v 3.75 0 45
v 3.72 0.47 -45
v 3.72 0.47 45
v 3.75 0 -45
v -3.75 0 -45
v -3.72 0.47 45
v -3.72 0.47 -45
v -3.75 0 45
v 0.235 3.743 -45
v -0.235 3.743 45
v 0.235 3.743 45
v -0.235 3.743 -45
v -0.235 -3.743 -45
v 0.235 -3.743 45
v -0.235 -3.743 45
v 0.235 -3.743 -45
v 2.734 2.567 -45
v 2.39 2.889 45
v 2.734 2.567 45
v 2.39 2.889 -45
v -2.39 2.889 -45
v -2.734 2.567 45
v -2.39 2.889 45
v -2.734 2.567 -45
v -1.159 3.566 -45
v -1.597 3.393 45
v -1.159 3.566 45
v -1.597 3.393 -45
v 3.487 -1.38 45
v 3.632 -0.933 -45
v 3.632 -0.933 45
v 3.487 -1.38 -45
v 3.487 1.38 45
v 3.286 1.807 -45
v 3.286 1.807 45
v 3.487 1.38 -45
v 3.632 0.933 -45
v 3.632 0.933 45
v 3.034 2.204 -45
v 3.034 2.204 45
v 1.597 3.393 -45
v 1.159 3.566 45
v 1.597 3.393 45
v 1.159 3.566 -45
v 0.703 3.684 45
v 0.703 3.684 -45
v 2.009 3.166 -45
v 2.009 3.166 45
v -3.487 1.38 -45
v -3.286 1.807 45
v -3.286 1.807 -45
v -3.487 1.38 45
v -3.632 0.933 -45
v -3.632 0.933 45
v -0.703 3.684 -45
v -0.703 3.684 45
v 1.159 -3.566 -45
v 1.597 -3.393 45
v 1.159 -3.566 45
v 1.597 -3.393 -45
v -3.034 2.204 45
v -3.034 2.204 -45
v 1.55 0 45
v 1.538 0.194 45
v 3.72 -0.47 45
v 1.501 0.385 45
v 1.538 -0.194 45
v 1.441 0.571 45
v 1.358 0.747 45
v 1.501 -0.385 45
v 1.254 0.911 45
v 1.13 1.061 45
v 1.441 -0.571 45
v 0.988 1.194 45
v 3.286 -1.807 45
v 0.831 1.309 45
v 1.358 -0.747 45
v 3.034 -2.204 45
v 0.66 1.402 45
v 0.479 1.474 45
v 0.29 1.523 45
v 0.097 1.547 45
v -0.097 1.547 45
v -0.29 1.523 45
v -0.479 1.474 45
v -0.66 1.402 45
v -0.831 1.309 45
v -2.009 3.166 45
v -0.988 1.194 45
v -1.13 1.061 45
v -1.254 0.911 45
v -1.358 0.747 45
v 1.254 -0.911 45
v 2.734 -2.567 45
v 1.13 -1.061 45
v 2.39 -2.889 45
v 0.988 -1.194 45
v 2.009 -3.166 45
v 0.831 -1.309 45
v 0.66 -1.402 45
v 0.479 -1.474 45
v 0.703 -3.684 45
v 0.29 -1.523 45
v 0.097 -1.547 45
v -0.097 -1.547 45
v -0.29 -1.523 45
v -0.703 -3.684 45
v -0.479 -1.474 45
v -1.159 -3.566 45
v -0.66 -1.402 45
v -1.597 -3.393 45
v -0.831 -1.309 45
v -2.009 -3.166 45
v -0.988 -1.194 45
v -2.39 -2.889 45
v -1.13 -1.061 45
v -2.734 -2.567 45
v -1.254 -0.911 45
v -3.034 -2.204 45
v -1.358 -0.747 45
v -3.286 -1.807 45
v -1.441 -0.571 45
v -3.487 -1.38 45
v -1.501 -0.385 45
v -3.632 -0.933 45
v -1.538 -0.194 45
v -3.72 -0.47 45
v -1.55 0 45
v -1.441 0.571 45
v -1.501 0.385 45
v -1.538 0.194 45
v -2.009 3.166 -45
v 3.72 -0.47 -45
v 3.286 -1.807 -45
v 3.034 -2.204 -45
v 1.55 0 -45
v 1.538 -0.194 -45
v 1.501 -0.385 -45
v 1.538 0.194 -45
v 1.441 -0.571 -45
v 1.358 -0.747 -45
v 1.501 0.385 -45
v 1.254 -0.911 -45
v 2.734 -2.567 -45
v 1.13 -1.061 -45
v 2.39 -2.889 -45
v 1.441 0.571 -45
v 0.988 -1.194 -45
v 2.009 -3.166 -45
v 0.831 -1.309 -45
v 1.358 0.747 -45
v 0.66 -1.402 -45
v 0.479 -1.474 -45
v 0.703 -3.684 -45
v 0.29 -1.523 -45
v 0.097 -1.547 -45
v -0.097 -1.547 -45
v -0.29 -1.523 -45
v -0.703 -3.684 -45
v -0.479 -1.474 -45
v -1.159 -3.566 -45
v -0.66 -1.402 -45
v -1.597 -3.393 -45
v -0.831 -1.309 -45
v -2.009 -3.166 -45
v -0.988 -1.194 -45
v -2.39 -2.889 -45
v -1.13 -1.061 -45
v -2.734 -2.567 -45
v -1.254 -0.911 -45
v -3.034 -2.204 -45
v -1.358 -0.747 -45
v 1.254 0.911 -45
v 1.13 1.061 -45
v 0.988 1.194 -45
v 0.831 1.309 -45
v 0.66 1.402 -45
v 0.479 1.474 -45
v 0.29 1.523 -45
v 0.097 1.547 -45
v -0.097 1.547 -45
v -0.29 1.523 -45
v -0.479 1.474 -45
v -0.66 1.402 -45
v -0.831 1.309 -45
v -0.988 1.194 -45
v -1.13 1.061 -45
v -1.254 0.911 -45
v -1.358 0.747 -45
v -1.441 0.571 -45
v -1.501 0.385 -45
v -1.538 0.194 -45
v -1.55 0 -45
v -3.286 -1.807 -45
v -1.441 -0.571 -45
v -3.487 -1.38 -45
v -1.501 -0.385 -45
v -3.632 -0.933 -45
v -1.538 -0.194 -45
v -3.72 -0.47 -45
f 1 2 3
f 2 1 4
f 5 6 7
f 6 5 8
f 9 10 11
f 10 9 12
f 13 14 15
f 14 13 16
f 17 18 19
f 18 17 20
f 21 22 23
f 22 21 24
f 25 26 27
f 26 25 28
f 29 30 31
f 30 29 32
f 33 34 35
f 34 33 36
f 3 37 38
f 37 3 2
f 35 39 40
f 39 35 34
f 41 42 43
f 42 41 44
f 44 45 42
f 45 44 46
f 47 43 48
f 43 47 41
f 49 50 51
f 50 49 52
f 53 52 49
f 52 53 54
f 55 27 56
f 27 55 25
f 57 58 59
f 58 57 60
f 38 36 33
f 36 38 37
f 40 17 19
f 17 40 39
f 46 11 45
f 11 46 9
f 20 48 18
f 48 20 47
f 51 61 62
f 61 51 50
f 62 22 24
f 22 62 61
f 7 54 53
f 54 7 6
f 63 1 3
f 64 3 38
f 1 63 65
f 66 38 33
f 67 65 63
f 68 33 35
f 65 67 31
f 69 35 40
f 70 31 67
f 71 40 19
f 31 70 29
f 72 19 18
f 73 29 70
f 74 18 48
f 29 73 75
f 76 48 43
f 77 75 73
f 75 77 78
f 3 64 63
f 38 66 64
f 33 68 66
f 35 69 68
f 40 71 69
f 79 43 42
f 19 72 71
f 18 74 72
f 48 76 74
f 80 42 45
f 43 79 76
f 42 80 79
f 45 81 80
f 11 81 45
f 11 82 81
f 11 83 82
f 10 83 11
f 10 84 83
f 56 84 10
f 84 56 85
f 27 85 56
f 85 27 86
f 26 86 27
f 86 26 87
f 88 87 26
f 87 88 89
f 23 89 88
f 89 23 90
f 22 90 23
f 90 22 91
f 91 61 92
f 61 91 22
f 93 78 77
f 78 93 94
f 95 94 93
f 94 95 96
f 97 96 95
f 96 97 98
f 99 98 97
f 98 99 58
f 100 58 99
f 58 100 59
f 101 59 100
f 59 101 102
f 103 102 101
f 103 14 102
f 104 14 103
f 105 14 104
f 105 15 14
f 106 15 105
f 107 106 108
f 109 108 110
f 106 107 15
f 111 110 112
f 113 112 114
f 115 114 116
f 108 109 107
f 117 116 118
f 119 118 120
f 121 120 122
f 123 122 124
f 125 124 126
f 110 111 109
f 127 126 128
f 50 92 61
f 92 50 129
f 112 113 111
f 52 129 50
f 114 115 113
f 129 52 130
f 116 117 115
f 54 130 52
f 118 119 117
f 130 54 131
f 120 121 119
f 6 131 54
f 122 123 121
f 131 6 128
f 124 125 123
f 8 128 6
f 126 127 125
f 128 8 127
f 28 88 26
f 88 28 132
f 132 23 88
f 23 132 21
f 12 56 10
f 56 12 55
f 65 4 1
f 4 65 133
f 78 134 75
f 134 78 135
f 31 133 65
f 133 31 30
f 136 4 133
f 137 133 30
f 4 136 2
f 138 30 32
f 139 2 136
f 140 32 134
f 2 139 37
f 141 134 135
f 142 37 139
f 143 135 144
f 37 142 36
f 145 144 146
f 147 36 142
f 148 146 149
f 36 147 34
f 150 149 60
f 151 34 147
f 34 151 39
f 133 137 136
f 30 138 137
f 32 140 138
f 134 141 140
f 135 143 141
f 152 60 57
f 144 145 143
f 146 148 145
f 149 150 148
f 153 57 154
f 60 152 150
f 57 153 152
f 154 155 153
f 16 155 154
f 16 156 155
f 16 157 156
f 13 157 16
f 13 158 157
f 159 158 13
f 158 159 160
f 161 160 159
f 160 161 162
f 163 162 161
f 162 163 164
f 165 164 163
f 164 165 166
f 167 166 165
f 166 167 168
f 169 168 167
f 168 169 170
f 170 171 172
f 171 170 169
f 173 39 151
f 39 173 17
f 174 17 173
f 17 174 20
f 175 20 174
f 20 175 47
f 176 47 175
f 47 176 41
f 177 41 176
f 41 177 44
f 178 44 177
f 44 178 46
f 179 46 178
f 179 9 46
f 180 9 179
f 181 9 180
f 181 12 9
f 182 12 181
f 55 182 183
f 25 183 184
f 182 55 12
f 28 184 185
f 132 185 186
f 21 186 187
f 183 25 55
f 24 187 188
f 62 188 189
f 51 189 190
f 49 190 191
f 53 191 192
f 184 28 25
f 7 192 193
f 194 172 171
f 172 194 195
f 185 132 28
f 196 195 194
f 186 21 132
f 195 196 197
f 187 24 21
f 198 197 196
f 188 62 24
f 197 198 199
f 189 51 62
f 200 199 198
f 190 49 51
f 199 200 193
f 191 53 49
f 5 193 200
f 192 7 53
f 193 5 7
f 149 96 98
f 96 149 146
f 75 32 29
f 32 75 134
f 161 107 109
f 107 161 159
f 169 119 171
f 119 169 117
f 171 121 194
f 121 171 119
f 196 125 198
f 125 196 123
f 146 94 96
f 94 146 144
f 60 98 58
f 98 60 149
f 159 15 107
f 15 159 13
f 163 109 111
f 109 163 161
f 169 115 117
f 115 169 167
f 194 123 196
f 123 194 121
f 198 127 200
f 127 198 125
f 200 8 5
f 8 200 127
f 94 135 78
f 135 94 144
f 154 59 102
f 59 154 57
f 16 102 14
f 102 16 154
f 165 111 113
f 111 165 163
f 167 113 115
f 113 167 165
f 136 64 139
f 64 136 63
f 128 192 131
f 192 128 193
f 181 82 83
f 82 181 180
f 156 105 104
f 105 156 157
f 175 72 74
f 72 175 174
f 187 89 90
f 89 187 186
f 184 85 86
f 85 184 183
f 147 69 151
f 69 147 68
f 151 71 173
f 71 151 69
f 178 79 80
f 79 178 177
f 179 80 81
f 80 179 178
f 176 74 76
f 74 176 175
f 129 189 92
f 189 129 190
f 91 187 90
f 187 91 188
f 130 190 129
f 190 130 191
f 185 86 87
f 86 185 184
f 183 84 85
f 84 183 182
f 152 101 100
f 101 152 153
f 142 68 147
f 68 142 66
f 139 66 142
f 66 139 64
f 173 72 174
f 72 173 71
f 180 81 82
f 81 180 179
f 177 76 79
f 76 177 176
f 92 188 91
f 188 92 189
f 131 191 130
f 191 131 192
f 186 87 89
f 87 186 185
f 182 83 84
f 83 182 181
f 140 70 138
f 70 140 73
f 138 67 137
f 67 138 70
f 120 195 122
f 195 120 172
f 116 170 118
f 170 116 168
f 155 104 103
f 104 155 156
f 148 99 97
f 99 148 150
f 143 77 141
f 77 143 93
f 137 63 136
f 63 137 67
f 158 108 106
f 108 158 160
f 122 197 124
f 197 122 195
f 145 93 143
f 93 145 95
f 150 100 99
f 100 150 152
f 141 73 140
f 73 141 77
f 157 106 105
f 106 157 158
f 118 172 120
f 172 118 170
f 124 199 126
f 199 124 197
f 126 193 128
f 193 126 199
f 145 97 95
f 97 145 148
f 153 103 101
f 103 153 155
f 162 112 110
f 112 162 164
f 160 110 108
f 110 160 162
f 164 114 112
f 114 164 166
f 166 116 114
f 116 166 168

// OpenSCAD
$fn = 50;


difference() {
	union() {
		translate(v = [0, 0, -45.0000000000]) {
			cylinder(h = 90, r = 3.7500000000);
		}
	}
	union() {
		translate(v = [0, 0, -100.0000000000]) {
			cylinder(h = 200, r = 1.5500000000);
		}
	}
}
